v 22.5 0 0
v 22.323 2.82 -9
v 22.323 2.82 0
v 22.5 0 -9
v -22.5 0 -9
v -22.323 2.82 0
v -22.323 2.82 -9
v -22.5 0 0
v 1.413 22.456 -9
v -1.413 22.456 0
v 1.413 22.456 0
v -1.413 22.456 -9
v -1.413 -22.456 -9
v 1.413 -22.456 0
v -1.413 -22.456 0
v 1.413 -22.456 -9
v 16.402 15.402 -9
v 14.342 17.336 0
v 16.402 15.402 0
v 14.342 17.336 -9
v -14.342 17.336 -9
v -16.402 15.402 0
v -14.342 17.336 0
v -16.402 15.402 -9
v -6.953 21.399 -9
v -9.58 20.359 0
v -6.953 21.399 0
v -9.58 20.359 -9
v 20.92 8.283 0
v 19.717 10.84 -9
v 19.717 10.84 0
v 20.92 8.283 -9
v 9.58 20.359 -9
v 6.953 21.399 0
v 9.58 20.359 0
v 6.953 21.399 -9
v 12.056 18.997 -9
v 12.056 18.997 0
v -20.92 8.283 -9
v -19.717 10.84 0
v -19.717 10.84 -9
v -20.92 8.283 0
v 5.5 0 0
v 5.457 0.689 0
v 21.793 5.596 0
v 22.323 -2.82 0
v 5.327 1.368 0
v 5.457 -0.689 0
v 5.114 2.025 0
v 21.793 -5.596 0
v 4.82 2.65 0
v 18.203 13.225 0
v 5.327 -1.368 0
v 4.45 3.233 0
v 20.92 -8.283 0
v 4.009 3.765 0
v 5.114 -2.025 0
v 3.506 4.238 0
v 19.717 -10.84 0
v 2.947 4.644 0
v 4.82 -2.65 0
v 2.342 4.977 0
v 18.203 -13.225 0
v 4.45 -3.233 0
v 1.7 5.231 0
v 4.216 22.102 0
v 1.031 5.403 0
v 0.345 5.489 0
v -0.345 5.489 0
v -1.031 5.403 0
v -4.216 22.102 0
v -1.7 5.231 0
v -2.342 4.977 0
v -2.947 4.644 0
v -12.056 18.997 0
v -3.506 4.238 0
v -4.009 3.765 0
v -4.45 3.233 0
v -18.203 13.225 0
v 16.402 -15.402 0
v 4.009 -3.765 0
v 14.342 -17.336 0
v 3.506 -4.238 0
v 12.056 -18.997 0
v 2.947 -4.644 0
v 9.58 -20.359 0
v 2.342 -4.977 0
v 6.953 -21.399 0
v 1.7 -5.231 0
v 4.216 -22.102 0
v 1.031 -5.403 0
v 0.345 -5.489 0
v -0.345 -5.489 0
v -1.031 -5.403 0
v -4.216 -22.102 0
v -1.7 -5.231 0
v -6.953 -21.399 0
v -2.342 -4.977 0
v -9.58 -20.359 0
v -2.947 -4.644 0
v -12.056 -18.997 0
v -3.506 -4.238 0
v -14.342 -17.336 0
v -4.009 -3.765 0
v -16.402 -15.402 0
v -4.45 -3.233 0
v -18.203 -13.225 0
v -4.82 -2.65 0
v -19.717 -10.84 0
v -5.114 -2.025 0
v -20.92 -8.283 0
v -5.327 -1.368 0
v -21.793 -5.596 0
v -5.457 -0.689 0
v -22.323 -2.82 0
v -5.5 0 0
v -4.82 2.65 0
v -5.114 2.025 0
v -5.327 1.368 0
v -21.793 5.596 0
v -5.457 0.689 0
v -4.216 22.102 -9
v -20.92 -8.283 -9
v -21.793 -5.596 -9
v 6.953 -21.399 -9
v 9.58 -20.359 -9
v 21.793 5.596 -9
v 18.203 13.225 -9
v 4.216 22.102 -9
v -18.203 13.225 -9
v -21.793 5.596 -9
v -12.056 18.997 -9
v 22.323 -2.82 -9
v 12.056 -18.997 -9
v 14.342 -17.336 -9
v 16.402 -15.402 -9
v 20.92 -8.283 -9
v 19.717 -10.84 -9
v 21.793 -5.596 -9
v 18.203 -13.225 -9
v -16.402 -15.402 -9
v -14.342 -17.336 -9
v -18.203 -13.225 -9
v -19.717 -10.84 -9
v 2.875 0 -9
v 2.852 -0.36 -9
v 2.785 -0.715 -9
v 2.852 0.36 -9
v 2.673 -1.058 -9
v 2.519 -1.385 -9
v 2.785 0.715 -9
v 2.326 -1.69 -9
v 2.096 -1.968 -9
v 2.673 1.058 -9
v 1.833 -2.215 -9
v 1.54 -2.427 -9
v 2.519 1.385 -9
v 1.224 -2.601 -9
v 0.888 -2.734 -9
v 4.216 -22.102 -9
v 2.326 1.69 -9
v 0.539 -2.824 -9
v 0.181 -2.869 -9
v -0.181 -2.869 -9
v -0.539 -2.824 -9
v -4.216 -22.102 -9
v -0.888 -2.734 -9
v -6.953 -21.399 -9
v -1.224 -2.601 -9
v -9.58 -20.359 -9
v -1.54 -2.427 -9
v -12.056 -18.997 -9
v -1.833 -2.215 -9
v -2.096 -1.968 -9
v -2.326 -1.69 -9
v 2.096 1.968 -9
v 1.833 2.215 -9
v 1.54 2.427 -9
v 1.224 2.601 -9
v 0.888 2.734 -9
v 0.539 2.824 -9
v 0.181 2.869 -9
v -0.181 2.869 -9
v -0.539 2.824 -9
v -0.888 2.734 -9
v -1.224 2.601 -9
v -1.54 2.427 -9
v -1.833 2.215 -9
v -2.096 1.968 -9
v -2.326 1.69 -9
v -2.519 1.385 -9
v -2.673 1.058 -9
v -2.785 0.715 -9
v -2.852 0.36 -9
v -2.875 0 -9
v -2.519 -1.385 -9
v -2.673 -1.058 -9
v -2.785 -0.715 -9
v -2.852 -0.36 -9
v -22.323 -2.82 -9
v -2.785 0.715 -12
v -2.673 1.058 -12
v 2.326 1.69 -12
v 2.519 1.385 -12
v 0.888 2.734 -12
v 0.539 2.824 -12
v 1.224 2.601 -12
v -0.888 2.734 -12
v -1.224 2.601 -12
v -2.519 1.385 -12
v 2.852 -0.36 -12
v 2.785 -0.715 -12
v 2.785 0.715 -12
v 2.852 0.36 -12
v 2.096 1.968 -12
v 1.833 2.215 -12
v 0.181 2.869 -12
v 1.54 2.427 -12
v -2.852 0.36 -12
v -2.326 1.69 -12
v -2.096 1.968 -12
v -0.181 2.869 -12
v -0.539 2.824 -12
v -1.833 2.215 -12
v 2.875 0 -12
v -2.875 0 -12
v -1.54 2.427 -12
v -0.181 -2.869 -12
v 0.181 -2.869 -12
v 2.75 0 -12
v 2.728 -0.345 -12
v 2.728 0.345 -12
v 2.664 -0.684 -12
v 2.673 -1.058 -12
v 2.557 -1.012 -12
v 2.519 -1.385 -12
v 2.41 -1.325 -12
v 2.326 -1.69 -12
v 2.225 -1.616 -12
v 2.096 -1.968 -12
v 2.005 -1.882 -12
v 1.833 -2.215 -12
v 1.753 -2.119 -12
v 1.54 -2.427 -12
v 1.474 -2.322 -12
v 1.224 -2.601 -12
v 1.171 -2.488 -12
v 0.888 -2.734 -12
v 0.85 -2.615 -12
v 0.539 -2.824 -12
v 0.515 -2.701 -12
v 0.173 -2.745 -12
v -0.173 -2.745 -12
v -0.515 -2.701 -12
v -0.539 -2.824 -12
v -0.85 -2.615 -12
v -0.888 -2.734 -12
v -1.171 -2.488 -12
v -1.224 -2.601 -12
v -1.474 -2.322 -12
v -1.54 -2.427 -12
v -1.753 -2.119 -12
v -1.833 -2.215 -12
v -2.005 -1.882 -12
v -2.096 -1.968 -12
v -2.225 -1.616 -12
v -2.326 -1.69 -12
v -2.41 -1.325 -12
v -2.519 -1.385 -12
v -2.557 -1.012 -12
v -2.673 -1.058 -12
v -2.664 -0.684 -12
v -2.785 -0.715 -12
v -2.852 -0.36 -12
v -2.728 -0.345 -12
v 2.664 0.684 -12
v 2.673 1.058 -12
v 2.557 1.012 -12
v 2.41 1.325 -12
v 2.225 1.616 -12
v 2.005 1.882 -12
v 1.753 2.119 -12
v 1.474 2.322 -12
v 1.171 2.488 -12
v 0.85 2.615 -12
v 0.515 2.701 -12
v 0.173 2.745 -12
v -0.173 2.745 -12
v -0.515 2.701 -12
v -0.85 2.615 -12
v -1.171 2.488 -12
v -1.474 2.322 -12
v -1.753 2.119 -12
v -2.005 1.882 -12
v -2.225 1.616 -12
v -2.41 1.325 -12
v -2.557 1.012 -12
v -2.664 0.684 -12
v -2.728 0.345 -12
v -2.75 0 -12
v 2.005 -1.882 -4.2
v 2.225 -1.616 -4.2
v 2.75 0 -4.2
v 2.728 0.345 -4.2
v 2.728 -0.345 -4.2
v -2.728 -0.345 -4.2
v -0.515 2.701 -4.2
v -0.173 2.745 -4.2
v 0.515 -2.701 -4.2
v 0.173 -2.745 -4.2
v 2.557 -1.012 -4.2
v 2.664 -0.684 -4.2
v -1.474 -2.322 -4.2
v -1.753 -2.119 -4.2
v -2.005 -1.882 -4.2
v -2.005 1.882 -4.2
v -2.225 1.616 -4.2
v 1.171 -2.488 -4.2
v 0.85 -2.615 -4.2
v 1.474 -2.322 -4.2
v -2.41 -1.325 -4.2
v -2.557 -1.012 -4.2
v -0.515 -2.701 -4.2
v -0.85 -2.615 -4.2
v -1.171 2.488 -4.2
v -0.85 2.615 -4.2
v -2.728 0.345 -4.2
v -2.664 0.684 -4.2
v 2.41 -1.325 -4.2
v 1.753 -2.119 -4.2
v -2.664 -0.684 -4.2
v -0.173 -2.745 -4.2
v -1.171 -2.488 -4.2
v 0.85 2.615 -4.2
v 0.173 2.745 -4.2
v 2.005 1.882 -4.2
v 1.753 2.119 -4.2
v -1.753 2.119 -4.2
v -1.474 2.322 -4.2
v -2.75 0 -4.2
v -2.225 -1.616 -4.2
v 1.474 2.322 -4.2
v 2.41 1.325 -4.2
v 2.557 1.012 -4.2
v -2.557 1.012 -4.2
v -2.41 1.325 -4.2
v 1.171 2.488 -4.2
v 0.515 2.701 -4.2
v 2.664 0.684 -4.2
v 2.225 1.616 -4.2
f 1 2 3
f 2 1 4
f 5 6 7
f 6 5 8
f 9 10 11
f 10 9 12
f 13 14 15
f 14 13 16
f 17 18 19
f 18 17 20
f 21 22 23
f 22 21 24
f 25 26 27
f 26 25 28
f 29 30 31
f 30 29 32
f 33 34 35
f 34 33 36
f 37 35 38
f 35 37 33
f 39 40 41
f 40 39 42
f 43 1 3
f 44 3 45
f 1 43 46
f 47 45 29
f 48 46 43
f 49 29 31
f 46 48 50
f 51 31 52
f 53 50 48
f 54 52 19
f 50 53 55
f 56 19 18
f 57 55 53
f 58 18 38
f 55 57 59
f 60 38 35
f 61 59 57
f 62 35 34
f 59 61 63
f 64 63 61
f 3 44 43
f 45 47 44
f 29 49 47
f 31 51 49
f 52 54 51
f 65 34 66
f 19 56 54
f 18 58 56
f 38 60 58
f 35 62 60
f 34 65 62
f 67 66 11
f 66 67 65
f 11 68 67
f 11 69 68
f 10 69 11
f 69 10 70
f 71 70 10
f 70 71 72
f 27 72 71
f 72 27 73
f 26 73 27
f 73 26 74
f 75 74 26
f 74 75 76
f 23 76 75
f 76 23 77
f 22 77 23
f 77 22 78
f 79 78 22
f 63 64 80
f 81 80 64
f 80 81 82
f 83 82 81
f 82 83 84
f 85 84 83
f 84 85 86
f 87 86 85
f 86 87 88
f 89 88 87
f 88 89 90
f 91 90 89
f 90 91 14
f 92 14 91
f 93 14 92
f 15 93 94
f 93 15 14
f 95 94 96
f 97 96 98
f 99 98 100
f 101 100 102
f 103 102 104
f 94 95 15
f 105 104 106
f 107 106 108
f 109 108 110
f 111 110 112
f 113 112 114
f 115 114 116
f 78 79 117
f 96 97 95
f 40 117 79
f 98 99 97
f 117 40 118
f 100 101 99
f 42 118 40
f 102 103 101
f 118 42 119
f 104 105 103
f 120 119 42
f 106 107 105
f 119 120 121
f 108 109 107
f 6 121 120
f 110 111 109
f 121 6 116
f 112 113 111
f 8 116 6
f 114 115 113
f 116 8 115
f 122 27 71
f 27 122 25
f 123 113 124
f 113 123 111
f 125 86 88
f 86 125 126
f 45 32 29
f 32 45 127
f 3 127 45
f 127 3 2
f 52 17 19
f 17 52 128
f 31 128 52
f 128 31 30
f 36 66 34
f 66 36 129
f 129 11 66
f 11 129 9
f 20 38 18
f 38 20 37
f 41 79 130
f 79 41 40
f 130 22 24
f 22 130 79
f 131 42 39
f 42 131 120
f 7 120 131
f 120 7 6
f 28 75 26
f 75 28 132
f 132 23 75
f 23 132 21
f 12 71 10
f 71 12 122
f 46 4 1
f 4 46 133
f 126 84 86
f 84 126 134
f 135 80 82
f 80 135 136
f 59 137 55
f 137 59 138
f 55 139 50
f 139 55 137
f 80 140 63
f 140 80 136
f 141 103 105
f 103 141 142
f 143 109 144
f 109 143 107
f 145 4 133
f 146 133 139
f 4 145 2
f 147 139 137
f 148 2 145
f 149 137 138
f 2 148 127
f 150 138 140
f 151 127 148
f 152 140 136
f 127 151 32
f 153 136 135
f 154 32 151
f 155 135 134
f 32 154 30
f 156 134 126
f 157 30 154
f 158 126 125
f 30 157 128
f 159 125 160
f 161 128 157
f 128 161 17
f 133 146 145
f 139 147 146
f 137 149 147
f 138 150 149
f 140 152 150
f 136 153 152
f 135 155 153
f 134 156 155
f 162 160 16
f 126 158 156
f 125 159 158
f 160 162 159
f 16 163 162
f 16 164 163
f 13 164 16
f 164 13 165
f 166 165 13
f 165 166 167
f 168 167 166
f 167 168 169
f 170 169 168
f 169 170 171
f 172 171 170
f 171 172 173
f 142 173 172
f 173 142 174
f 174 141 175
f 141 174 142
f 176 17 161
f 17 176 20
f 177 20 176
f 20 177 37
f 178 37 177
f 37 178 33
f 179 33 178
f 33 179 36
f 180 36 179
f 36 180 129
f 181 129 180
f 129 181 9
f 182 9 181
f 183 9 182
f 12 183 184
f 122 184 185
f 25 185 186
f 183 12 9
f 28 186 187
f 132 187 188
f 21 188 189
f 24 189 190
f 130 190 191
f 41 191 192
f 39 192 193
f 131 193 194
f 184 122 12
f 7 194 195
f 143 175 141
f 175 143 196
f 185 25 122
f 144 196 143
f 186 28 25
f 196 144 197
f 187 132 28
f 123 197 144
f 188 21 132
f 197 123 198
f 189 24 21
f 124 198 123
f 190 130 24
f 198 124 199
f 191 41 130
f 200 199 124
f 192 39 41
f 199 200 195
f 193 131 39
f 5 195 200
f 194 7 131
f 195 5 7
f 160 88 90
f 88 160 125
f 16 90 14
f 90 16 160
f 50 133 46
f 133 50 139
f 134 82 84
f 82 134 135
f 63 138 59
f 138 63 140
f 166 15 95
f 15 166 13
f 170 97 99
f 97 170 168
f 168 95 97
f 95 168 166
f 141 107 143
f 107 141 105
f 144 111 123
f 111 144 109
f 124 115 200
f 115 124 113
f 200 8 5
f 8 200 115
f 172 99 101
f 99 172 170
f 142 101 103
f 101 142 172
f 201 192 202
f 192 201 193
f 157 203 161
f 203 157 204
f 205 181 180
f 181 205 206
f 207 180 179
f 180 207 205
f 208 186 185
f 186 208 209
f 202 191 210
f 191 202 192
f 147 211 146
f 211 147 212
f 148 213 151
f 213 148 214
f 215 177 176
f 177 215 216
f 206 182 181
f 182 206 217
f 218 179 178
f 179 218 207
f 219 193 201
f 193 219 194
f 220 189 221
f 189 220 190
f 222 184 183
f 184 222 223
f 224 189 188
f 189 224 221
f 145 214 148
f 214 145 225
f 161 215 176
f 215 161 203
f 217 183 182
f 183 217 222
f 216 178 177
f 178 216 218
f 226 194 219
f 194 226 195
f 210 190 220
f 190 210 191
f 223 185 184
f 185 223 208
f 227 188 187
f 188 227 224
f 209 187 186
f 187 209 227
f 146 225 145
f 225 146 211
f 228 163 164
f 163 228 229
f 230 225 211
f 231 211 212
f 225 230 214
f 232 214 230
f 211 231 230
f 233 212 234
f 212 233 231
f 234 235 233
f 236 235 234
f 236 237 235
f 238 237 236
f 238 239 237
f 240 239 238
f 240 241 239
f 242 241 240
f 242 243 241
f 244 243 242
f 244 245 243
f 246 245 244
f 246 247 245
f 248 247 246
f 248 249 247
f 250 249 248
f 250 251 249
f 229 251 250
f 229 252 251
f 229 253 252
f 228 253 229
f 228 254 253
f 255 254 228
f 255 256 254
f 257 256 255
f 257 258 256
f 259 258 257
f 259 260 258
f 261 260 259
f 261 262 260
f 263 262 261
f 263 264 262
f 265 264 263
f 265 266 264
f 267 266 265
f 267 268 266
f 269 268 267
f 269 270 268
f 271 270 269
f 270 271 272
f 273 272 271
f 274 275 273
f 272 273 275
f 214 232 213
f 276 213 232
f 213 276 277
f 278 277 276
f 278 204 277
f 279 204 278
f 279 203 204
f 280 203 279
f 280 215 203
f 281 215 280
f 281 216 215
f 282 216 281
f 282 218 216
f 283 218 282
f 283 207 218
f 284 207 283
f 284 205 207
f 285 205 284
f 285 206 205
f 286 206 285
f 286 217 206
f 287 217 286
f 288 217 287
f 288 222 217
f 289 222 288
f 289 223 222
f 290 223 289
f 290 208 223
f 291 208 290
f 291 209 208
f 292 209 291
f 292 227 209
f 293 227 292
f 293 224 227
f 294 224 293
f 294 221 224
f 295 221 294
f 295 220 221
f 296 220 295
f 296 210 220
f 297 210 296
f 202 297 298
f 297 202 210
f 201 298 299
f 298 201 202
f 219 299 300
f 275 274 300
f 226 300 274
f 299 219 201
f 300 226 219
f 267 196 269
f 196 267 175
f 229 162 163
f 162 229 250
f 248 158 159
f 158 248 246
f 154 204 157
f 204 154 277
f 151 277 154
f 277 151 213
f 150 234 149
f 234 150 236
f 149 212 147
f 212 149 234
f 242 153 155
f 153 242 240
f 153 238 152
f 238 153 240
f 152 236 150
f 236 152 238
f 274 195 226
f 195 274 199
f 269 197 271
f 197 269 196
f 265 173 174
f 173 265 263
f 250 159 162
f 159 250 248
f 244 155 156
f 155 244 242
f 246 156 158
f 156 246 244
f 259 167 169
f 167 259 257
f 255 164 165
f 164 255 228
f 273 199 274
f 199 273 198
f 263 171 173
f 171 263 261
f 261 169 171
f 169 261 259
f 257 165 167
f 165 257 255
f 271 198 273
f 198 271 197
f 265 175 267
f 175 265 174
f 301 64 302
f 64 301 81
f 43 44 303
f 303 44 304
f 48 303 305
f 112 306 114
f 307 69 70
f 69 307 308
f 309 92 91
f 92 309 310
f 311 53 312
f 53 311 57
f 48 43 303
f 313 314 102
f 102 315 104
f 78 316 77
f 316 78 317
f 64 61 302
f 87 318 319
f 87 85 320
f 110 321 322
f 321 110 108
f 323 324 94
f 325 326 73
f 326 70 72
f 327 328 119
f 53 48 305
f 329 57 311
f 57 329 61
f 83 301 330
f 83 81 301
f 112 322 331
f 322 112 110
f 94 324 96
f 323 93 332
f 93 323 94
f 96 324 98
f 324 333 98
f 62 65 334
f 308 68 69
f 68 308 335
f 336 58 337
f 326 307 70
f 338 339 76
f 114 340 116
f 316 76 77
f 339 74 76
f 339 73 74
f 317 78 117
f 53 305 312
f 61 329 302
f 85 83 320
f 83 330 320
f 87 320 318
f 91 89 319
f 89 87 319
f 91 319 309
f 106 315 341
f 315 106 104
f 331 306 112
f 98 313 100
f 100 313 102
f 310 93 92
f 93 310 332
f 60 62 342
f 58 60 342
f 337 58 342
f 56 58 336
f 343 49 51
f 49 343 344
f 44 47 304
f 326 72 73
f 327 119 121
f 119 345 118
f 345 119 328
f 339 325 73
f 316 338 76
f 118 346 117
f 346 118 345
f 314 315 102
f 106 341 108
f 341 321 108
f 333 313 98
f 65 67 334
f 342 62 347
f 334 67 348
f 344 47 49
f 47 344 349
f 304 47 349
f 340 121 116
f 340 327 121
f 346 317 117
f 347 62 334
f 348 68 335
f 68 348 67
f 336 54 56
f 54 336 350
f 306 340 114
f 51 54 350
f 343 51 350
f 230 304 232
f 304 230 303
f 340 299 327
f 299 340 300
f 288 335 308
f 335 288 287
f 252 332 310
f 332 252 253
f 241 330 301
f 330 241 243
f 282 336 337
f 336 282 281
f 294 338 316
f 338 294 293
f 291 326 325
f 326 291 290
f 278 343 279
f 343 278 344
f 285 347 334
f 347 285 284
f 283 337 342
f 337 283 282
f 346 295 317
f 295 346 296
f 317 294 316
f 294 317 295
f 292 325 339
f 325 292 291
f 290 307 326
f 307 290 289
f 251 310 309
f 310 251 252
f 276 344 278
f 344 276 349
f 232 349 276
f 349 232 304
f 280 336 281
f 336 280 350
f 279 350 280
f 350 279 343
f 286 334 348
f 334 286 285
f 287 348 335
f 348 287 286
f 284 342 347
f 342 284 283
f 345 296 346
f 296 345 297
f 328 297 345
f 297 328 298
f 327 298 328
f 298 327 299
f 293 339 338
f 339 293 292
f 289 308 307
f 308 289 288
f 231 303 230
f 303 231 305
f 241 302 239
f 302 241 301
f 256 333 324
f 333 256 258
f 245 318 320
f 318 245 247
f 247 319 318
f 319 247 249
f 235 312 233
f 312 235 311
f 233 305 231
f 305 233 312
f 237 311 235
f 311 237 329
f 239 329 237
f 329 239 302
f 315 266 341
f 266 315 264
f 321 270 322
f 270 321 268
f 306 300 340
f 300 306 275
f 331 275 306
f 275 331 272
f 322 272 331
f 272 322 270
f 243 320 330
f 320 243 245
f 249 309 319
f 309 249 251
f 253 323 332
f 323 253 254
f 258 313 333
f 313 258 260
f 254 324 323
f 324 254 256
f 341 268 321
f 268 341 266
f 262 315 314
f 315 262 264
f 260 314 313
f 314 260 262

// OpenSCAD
$fn = 50;


difference() {
	union() {
		translate(v = [0, 0, -9.0000000000]) {
			cylinder(h = 9, r = 22.5000000000);
		}
		translate(v = [0, 0, -12.0000000000]) {
			cylinder(h = 12, r = 2.8750000000);
		}
	}
	union() {
		translate(v = [0, 0, 0]) {
			rotate(a = [0, 0, 0]) {
				difference() {
					union() {
						translate(v = [0, 0, -12.0000000000]) {
							cylinder(h = 12, r = 2.2500000000);
						}
						translate(v = [0, 0, -4.2000000000]) {
							cylinder(h = 4.2000000000, r1 = 2.7500000000, r2 = 5.5000000000);
						}
						translate(v = [0, 0, -12.0000000000]) {
							cylinder(h = 12, r = 2.7500000000);
						}
						translate(v = [0, 0, -12.0000000000]) {
							cylinder(h = 12, r = 2.2500000000);
						}
					}
					union();
				}
			}
		}
	}
}
